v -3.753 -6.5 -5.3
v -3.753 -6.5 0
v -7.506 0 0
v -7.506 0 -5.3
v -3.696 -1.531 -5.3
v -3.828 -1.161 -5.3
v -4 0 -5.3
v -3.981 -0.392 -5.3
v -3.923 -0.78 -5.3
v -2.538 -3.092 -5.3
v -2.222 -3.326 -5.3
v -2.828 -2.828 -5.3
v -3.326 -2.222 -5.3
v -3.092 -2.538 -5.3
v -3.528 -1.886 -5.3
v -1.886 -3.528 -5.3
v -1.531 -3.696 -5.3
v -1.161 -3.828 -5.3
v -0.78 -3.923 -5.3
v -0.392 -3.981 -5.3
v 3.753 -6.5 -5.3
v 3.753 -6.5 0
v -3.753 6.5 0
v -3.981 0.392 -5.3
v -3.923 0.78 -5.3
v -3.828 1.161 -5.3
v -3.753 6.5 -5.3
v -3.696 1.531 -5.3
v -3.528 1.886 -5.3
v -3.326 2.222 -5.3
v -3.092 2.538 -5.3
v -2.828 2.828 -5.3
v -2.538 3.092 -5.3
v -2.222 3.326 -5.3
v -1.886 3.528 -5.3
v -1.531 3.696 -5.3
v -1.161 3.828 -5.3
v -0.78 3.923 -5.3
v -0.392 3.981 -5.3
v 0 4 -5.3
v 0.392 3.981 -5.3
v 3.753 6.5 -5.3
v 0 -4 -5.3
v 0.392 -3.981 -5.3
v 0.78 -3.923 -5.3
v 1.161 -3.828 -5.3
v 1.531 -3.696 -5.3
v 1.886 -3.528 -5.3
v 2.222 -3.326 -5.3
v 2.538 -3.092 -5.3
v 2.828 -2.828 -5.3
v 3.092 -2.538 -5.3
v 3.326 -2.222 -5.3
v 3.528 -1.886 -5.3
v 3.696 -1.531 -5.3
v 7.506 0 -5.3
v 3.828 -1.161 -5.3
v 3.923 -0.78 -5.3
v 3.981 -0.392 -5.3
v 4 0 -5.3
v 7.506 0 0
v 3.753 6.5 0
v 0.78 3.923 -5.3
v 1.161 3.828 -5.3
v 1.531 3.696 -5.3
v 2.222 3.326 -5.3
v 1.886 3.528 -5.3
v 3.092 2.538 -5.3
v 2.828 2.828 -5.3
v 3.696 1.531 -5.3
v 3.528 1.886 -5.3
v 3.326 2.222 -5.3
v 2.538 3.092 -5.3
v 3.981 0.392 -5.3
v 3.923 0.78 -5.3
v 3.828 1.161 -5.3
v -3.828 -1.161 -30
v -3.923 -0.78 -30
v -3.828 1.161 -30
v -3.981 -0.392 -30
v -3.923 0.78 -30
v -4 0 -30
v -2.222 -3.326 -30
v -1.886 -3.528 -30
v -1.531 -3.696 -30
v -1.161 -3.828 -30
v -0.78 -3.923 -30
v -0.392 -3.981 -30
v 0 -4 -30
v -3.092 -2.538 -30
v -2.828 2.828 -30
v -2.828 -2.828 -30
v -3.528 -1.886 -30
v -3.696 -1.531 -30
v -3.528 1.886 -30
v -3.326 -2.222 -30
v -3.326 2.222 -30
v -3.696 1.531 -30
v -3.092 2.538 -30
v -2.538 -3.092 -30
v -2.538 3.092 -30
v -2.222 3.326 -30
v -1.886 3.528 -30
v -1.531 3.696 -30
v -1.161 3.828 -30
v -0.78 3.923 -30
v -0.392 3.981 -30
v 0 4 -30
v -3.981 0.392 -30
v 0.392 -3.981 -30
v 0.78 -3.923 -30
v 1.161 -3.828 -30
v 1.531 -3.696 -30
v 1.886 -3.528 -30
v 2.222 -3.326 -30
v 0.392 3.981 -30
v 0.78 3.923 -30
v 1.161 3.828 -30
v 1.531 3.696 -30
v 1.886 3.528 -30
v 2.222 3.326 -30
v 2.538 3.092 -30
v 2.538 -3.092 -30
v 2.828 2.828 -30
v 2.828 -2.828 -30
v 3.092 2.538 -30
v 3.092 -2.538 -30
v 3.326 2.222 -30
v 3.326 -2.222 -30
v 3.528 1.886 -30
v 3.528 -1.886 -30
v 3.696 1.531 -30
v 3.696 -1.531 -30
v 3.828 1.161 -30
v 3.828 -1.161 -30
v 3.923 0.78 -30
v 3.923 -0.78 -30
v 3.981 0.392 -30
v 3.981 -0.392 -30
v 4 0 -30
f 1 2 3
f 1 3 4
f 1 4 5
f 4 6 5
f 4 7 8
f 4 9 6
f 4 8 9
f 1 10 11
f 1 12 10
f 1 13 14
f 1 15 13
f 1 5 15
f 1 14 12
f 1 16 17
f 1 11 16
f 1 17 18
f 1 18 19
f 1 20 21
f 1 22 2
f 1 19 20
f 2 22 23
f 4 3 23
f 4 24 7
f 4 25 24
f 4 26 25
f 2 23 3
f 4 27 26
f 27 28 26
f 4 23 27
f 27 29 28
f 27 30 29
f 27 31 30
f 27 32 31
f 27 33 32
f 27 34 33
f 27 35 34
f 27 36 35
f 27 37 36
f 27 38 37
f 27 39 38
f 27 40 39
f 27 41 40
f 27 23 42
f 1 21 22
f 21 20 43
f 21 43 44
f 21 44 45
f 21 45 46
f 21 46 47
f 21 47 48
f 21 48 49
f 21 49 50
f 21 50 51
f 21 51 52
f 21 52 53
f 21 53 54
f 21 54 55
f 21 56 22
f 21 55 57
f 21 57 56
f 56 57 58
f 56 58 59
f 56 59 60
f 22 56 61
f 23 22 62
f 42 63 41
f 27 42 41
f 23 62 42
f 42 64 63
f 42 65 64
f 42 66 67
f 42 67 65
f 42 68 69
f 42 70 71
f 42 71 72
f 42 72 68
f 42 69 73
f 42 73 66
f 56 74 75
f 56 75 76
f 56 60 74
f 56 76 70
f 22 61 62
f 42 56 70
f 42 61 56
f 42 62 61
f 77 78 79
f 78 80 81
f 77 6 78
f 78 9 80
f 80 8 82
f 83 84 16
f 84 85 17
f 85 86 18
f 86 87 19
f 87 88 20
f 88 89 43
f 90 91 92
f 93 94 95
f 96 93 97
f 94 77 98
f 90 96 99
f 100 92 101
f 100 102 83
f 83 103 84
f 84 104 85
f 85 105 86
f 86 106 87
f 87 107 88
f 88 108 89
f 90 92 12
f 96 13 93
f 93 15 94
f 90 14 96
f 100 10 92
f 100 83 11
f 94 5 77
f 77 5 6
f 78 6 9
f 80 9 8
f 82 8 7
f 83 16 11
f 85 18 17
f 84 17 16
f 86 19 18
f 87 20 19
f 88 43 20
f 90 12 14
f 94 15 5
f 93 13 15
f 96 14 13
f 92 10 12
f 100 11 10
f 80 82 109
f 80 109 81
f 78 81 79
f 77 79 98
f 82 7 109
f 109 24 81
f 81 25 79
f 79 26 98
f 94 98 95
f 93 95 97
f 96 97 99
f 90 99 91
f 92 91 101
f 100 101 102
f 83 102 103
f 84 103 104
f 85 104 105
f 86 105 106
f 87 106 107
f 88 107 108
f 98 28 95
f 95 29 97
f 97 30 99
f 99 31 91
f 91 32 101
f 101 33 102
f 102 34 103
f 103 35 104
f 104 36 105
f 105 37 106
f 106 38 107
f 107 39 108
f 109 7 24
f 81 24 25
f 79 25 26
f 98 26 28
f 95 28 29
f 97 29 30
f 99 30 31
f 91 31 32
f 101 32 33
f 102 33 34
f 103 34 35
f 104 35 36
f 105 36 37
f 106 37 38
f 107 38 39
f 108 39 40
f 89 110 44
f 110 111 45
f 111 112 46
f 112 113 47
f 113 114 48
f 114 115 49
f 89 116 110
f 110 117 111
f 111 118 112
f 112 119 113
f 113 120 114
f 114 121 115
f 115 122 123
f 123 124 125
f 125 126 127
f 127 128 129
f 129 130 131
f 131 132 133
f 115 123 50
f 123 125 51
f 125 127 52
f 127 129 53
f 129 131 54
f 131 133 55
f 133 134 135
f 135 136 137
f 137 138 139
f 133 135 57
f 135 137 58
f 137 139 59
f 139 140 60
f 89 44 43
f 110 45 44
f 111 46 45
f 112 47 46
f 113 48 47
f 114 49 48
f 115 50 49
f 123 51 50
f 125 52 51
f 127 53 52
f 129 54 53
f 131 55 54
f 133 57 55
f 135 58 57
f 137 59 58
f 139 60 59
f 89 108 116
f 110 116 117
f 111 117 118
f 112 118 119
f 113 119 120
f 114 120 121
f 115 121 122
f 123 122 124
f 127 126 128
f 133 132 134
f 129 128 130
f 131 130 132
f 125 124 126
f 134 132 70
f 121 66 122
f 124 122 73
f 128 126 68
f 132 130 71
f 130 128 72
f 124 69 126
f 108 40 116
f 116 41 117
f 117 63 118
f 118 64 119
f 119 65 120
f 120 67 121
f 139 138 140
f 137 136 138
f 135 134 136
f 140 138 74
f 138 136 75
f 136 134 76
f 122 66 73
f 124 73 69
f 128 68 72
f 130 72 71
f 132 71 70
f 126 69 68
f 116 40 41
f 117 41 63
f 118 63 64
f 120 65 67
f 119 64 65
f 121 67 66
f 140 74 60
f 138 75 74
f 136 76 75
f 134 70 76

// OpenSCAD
// M8 Hex Bolt

// Dimensions
head_across_flats = 13; // Across-flats distance for the hexagonal head
head_height = 5.3;      // Height of the hexagonal head
shank_diameter = 8;     // Diameter of the cylindrical shank
shank_length = 30;      // Length of the cylindrical shank

// Calculate radius for hexagonal head
// A hexagon with across-flats 'a' has a radius 'r' such that r = a / sqrt(3)
head_radius = head_across_flats / sqrt(3);

// Head
translate([0, 0, -head_height]) { // Position the head so its bottom is at z=0 after head is translated up.
    cylinder(h = head_height, r = head_radius, $fn = 6);
}

// Shank
translate([0, 0, -shank_length]) { // Position the shank so its top is at z=0 after shank is translated up.
    cylinder(h = shank_length, r = shank_diameter / 2, $fn = 64);
}
